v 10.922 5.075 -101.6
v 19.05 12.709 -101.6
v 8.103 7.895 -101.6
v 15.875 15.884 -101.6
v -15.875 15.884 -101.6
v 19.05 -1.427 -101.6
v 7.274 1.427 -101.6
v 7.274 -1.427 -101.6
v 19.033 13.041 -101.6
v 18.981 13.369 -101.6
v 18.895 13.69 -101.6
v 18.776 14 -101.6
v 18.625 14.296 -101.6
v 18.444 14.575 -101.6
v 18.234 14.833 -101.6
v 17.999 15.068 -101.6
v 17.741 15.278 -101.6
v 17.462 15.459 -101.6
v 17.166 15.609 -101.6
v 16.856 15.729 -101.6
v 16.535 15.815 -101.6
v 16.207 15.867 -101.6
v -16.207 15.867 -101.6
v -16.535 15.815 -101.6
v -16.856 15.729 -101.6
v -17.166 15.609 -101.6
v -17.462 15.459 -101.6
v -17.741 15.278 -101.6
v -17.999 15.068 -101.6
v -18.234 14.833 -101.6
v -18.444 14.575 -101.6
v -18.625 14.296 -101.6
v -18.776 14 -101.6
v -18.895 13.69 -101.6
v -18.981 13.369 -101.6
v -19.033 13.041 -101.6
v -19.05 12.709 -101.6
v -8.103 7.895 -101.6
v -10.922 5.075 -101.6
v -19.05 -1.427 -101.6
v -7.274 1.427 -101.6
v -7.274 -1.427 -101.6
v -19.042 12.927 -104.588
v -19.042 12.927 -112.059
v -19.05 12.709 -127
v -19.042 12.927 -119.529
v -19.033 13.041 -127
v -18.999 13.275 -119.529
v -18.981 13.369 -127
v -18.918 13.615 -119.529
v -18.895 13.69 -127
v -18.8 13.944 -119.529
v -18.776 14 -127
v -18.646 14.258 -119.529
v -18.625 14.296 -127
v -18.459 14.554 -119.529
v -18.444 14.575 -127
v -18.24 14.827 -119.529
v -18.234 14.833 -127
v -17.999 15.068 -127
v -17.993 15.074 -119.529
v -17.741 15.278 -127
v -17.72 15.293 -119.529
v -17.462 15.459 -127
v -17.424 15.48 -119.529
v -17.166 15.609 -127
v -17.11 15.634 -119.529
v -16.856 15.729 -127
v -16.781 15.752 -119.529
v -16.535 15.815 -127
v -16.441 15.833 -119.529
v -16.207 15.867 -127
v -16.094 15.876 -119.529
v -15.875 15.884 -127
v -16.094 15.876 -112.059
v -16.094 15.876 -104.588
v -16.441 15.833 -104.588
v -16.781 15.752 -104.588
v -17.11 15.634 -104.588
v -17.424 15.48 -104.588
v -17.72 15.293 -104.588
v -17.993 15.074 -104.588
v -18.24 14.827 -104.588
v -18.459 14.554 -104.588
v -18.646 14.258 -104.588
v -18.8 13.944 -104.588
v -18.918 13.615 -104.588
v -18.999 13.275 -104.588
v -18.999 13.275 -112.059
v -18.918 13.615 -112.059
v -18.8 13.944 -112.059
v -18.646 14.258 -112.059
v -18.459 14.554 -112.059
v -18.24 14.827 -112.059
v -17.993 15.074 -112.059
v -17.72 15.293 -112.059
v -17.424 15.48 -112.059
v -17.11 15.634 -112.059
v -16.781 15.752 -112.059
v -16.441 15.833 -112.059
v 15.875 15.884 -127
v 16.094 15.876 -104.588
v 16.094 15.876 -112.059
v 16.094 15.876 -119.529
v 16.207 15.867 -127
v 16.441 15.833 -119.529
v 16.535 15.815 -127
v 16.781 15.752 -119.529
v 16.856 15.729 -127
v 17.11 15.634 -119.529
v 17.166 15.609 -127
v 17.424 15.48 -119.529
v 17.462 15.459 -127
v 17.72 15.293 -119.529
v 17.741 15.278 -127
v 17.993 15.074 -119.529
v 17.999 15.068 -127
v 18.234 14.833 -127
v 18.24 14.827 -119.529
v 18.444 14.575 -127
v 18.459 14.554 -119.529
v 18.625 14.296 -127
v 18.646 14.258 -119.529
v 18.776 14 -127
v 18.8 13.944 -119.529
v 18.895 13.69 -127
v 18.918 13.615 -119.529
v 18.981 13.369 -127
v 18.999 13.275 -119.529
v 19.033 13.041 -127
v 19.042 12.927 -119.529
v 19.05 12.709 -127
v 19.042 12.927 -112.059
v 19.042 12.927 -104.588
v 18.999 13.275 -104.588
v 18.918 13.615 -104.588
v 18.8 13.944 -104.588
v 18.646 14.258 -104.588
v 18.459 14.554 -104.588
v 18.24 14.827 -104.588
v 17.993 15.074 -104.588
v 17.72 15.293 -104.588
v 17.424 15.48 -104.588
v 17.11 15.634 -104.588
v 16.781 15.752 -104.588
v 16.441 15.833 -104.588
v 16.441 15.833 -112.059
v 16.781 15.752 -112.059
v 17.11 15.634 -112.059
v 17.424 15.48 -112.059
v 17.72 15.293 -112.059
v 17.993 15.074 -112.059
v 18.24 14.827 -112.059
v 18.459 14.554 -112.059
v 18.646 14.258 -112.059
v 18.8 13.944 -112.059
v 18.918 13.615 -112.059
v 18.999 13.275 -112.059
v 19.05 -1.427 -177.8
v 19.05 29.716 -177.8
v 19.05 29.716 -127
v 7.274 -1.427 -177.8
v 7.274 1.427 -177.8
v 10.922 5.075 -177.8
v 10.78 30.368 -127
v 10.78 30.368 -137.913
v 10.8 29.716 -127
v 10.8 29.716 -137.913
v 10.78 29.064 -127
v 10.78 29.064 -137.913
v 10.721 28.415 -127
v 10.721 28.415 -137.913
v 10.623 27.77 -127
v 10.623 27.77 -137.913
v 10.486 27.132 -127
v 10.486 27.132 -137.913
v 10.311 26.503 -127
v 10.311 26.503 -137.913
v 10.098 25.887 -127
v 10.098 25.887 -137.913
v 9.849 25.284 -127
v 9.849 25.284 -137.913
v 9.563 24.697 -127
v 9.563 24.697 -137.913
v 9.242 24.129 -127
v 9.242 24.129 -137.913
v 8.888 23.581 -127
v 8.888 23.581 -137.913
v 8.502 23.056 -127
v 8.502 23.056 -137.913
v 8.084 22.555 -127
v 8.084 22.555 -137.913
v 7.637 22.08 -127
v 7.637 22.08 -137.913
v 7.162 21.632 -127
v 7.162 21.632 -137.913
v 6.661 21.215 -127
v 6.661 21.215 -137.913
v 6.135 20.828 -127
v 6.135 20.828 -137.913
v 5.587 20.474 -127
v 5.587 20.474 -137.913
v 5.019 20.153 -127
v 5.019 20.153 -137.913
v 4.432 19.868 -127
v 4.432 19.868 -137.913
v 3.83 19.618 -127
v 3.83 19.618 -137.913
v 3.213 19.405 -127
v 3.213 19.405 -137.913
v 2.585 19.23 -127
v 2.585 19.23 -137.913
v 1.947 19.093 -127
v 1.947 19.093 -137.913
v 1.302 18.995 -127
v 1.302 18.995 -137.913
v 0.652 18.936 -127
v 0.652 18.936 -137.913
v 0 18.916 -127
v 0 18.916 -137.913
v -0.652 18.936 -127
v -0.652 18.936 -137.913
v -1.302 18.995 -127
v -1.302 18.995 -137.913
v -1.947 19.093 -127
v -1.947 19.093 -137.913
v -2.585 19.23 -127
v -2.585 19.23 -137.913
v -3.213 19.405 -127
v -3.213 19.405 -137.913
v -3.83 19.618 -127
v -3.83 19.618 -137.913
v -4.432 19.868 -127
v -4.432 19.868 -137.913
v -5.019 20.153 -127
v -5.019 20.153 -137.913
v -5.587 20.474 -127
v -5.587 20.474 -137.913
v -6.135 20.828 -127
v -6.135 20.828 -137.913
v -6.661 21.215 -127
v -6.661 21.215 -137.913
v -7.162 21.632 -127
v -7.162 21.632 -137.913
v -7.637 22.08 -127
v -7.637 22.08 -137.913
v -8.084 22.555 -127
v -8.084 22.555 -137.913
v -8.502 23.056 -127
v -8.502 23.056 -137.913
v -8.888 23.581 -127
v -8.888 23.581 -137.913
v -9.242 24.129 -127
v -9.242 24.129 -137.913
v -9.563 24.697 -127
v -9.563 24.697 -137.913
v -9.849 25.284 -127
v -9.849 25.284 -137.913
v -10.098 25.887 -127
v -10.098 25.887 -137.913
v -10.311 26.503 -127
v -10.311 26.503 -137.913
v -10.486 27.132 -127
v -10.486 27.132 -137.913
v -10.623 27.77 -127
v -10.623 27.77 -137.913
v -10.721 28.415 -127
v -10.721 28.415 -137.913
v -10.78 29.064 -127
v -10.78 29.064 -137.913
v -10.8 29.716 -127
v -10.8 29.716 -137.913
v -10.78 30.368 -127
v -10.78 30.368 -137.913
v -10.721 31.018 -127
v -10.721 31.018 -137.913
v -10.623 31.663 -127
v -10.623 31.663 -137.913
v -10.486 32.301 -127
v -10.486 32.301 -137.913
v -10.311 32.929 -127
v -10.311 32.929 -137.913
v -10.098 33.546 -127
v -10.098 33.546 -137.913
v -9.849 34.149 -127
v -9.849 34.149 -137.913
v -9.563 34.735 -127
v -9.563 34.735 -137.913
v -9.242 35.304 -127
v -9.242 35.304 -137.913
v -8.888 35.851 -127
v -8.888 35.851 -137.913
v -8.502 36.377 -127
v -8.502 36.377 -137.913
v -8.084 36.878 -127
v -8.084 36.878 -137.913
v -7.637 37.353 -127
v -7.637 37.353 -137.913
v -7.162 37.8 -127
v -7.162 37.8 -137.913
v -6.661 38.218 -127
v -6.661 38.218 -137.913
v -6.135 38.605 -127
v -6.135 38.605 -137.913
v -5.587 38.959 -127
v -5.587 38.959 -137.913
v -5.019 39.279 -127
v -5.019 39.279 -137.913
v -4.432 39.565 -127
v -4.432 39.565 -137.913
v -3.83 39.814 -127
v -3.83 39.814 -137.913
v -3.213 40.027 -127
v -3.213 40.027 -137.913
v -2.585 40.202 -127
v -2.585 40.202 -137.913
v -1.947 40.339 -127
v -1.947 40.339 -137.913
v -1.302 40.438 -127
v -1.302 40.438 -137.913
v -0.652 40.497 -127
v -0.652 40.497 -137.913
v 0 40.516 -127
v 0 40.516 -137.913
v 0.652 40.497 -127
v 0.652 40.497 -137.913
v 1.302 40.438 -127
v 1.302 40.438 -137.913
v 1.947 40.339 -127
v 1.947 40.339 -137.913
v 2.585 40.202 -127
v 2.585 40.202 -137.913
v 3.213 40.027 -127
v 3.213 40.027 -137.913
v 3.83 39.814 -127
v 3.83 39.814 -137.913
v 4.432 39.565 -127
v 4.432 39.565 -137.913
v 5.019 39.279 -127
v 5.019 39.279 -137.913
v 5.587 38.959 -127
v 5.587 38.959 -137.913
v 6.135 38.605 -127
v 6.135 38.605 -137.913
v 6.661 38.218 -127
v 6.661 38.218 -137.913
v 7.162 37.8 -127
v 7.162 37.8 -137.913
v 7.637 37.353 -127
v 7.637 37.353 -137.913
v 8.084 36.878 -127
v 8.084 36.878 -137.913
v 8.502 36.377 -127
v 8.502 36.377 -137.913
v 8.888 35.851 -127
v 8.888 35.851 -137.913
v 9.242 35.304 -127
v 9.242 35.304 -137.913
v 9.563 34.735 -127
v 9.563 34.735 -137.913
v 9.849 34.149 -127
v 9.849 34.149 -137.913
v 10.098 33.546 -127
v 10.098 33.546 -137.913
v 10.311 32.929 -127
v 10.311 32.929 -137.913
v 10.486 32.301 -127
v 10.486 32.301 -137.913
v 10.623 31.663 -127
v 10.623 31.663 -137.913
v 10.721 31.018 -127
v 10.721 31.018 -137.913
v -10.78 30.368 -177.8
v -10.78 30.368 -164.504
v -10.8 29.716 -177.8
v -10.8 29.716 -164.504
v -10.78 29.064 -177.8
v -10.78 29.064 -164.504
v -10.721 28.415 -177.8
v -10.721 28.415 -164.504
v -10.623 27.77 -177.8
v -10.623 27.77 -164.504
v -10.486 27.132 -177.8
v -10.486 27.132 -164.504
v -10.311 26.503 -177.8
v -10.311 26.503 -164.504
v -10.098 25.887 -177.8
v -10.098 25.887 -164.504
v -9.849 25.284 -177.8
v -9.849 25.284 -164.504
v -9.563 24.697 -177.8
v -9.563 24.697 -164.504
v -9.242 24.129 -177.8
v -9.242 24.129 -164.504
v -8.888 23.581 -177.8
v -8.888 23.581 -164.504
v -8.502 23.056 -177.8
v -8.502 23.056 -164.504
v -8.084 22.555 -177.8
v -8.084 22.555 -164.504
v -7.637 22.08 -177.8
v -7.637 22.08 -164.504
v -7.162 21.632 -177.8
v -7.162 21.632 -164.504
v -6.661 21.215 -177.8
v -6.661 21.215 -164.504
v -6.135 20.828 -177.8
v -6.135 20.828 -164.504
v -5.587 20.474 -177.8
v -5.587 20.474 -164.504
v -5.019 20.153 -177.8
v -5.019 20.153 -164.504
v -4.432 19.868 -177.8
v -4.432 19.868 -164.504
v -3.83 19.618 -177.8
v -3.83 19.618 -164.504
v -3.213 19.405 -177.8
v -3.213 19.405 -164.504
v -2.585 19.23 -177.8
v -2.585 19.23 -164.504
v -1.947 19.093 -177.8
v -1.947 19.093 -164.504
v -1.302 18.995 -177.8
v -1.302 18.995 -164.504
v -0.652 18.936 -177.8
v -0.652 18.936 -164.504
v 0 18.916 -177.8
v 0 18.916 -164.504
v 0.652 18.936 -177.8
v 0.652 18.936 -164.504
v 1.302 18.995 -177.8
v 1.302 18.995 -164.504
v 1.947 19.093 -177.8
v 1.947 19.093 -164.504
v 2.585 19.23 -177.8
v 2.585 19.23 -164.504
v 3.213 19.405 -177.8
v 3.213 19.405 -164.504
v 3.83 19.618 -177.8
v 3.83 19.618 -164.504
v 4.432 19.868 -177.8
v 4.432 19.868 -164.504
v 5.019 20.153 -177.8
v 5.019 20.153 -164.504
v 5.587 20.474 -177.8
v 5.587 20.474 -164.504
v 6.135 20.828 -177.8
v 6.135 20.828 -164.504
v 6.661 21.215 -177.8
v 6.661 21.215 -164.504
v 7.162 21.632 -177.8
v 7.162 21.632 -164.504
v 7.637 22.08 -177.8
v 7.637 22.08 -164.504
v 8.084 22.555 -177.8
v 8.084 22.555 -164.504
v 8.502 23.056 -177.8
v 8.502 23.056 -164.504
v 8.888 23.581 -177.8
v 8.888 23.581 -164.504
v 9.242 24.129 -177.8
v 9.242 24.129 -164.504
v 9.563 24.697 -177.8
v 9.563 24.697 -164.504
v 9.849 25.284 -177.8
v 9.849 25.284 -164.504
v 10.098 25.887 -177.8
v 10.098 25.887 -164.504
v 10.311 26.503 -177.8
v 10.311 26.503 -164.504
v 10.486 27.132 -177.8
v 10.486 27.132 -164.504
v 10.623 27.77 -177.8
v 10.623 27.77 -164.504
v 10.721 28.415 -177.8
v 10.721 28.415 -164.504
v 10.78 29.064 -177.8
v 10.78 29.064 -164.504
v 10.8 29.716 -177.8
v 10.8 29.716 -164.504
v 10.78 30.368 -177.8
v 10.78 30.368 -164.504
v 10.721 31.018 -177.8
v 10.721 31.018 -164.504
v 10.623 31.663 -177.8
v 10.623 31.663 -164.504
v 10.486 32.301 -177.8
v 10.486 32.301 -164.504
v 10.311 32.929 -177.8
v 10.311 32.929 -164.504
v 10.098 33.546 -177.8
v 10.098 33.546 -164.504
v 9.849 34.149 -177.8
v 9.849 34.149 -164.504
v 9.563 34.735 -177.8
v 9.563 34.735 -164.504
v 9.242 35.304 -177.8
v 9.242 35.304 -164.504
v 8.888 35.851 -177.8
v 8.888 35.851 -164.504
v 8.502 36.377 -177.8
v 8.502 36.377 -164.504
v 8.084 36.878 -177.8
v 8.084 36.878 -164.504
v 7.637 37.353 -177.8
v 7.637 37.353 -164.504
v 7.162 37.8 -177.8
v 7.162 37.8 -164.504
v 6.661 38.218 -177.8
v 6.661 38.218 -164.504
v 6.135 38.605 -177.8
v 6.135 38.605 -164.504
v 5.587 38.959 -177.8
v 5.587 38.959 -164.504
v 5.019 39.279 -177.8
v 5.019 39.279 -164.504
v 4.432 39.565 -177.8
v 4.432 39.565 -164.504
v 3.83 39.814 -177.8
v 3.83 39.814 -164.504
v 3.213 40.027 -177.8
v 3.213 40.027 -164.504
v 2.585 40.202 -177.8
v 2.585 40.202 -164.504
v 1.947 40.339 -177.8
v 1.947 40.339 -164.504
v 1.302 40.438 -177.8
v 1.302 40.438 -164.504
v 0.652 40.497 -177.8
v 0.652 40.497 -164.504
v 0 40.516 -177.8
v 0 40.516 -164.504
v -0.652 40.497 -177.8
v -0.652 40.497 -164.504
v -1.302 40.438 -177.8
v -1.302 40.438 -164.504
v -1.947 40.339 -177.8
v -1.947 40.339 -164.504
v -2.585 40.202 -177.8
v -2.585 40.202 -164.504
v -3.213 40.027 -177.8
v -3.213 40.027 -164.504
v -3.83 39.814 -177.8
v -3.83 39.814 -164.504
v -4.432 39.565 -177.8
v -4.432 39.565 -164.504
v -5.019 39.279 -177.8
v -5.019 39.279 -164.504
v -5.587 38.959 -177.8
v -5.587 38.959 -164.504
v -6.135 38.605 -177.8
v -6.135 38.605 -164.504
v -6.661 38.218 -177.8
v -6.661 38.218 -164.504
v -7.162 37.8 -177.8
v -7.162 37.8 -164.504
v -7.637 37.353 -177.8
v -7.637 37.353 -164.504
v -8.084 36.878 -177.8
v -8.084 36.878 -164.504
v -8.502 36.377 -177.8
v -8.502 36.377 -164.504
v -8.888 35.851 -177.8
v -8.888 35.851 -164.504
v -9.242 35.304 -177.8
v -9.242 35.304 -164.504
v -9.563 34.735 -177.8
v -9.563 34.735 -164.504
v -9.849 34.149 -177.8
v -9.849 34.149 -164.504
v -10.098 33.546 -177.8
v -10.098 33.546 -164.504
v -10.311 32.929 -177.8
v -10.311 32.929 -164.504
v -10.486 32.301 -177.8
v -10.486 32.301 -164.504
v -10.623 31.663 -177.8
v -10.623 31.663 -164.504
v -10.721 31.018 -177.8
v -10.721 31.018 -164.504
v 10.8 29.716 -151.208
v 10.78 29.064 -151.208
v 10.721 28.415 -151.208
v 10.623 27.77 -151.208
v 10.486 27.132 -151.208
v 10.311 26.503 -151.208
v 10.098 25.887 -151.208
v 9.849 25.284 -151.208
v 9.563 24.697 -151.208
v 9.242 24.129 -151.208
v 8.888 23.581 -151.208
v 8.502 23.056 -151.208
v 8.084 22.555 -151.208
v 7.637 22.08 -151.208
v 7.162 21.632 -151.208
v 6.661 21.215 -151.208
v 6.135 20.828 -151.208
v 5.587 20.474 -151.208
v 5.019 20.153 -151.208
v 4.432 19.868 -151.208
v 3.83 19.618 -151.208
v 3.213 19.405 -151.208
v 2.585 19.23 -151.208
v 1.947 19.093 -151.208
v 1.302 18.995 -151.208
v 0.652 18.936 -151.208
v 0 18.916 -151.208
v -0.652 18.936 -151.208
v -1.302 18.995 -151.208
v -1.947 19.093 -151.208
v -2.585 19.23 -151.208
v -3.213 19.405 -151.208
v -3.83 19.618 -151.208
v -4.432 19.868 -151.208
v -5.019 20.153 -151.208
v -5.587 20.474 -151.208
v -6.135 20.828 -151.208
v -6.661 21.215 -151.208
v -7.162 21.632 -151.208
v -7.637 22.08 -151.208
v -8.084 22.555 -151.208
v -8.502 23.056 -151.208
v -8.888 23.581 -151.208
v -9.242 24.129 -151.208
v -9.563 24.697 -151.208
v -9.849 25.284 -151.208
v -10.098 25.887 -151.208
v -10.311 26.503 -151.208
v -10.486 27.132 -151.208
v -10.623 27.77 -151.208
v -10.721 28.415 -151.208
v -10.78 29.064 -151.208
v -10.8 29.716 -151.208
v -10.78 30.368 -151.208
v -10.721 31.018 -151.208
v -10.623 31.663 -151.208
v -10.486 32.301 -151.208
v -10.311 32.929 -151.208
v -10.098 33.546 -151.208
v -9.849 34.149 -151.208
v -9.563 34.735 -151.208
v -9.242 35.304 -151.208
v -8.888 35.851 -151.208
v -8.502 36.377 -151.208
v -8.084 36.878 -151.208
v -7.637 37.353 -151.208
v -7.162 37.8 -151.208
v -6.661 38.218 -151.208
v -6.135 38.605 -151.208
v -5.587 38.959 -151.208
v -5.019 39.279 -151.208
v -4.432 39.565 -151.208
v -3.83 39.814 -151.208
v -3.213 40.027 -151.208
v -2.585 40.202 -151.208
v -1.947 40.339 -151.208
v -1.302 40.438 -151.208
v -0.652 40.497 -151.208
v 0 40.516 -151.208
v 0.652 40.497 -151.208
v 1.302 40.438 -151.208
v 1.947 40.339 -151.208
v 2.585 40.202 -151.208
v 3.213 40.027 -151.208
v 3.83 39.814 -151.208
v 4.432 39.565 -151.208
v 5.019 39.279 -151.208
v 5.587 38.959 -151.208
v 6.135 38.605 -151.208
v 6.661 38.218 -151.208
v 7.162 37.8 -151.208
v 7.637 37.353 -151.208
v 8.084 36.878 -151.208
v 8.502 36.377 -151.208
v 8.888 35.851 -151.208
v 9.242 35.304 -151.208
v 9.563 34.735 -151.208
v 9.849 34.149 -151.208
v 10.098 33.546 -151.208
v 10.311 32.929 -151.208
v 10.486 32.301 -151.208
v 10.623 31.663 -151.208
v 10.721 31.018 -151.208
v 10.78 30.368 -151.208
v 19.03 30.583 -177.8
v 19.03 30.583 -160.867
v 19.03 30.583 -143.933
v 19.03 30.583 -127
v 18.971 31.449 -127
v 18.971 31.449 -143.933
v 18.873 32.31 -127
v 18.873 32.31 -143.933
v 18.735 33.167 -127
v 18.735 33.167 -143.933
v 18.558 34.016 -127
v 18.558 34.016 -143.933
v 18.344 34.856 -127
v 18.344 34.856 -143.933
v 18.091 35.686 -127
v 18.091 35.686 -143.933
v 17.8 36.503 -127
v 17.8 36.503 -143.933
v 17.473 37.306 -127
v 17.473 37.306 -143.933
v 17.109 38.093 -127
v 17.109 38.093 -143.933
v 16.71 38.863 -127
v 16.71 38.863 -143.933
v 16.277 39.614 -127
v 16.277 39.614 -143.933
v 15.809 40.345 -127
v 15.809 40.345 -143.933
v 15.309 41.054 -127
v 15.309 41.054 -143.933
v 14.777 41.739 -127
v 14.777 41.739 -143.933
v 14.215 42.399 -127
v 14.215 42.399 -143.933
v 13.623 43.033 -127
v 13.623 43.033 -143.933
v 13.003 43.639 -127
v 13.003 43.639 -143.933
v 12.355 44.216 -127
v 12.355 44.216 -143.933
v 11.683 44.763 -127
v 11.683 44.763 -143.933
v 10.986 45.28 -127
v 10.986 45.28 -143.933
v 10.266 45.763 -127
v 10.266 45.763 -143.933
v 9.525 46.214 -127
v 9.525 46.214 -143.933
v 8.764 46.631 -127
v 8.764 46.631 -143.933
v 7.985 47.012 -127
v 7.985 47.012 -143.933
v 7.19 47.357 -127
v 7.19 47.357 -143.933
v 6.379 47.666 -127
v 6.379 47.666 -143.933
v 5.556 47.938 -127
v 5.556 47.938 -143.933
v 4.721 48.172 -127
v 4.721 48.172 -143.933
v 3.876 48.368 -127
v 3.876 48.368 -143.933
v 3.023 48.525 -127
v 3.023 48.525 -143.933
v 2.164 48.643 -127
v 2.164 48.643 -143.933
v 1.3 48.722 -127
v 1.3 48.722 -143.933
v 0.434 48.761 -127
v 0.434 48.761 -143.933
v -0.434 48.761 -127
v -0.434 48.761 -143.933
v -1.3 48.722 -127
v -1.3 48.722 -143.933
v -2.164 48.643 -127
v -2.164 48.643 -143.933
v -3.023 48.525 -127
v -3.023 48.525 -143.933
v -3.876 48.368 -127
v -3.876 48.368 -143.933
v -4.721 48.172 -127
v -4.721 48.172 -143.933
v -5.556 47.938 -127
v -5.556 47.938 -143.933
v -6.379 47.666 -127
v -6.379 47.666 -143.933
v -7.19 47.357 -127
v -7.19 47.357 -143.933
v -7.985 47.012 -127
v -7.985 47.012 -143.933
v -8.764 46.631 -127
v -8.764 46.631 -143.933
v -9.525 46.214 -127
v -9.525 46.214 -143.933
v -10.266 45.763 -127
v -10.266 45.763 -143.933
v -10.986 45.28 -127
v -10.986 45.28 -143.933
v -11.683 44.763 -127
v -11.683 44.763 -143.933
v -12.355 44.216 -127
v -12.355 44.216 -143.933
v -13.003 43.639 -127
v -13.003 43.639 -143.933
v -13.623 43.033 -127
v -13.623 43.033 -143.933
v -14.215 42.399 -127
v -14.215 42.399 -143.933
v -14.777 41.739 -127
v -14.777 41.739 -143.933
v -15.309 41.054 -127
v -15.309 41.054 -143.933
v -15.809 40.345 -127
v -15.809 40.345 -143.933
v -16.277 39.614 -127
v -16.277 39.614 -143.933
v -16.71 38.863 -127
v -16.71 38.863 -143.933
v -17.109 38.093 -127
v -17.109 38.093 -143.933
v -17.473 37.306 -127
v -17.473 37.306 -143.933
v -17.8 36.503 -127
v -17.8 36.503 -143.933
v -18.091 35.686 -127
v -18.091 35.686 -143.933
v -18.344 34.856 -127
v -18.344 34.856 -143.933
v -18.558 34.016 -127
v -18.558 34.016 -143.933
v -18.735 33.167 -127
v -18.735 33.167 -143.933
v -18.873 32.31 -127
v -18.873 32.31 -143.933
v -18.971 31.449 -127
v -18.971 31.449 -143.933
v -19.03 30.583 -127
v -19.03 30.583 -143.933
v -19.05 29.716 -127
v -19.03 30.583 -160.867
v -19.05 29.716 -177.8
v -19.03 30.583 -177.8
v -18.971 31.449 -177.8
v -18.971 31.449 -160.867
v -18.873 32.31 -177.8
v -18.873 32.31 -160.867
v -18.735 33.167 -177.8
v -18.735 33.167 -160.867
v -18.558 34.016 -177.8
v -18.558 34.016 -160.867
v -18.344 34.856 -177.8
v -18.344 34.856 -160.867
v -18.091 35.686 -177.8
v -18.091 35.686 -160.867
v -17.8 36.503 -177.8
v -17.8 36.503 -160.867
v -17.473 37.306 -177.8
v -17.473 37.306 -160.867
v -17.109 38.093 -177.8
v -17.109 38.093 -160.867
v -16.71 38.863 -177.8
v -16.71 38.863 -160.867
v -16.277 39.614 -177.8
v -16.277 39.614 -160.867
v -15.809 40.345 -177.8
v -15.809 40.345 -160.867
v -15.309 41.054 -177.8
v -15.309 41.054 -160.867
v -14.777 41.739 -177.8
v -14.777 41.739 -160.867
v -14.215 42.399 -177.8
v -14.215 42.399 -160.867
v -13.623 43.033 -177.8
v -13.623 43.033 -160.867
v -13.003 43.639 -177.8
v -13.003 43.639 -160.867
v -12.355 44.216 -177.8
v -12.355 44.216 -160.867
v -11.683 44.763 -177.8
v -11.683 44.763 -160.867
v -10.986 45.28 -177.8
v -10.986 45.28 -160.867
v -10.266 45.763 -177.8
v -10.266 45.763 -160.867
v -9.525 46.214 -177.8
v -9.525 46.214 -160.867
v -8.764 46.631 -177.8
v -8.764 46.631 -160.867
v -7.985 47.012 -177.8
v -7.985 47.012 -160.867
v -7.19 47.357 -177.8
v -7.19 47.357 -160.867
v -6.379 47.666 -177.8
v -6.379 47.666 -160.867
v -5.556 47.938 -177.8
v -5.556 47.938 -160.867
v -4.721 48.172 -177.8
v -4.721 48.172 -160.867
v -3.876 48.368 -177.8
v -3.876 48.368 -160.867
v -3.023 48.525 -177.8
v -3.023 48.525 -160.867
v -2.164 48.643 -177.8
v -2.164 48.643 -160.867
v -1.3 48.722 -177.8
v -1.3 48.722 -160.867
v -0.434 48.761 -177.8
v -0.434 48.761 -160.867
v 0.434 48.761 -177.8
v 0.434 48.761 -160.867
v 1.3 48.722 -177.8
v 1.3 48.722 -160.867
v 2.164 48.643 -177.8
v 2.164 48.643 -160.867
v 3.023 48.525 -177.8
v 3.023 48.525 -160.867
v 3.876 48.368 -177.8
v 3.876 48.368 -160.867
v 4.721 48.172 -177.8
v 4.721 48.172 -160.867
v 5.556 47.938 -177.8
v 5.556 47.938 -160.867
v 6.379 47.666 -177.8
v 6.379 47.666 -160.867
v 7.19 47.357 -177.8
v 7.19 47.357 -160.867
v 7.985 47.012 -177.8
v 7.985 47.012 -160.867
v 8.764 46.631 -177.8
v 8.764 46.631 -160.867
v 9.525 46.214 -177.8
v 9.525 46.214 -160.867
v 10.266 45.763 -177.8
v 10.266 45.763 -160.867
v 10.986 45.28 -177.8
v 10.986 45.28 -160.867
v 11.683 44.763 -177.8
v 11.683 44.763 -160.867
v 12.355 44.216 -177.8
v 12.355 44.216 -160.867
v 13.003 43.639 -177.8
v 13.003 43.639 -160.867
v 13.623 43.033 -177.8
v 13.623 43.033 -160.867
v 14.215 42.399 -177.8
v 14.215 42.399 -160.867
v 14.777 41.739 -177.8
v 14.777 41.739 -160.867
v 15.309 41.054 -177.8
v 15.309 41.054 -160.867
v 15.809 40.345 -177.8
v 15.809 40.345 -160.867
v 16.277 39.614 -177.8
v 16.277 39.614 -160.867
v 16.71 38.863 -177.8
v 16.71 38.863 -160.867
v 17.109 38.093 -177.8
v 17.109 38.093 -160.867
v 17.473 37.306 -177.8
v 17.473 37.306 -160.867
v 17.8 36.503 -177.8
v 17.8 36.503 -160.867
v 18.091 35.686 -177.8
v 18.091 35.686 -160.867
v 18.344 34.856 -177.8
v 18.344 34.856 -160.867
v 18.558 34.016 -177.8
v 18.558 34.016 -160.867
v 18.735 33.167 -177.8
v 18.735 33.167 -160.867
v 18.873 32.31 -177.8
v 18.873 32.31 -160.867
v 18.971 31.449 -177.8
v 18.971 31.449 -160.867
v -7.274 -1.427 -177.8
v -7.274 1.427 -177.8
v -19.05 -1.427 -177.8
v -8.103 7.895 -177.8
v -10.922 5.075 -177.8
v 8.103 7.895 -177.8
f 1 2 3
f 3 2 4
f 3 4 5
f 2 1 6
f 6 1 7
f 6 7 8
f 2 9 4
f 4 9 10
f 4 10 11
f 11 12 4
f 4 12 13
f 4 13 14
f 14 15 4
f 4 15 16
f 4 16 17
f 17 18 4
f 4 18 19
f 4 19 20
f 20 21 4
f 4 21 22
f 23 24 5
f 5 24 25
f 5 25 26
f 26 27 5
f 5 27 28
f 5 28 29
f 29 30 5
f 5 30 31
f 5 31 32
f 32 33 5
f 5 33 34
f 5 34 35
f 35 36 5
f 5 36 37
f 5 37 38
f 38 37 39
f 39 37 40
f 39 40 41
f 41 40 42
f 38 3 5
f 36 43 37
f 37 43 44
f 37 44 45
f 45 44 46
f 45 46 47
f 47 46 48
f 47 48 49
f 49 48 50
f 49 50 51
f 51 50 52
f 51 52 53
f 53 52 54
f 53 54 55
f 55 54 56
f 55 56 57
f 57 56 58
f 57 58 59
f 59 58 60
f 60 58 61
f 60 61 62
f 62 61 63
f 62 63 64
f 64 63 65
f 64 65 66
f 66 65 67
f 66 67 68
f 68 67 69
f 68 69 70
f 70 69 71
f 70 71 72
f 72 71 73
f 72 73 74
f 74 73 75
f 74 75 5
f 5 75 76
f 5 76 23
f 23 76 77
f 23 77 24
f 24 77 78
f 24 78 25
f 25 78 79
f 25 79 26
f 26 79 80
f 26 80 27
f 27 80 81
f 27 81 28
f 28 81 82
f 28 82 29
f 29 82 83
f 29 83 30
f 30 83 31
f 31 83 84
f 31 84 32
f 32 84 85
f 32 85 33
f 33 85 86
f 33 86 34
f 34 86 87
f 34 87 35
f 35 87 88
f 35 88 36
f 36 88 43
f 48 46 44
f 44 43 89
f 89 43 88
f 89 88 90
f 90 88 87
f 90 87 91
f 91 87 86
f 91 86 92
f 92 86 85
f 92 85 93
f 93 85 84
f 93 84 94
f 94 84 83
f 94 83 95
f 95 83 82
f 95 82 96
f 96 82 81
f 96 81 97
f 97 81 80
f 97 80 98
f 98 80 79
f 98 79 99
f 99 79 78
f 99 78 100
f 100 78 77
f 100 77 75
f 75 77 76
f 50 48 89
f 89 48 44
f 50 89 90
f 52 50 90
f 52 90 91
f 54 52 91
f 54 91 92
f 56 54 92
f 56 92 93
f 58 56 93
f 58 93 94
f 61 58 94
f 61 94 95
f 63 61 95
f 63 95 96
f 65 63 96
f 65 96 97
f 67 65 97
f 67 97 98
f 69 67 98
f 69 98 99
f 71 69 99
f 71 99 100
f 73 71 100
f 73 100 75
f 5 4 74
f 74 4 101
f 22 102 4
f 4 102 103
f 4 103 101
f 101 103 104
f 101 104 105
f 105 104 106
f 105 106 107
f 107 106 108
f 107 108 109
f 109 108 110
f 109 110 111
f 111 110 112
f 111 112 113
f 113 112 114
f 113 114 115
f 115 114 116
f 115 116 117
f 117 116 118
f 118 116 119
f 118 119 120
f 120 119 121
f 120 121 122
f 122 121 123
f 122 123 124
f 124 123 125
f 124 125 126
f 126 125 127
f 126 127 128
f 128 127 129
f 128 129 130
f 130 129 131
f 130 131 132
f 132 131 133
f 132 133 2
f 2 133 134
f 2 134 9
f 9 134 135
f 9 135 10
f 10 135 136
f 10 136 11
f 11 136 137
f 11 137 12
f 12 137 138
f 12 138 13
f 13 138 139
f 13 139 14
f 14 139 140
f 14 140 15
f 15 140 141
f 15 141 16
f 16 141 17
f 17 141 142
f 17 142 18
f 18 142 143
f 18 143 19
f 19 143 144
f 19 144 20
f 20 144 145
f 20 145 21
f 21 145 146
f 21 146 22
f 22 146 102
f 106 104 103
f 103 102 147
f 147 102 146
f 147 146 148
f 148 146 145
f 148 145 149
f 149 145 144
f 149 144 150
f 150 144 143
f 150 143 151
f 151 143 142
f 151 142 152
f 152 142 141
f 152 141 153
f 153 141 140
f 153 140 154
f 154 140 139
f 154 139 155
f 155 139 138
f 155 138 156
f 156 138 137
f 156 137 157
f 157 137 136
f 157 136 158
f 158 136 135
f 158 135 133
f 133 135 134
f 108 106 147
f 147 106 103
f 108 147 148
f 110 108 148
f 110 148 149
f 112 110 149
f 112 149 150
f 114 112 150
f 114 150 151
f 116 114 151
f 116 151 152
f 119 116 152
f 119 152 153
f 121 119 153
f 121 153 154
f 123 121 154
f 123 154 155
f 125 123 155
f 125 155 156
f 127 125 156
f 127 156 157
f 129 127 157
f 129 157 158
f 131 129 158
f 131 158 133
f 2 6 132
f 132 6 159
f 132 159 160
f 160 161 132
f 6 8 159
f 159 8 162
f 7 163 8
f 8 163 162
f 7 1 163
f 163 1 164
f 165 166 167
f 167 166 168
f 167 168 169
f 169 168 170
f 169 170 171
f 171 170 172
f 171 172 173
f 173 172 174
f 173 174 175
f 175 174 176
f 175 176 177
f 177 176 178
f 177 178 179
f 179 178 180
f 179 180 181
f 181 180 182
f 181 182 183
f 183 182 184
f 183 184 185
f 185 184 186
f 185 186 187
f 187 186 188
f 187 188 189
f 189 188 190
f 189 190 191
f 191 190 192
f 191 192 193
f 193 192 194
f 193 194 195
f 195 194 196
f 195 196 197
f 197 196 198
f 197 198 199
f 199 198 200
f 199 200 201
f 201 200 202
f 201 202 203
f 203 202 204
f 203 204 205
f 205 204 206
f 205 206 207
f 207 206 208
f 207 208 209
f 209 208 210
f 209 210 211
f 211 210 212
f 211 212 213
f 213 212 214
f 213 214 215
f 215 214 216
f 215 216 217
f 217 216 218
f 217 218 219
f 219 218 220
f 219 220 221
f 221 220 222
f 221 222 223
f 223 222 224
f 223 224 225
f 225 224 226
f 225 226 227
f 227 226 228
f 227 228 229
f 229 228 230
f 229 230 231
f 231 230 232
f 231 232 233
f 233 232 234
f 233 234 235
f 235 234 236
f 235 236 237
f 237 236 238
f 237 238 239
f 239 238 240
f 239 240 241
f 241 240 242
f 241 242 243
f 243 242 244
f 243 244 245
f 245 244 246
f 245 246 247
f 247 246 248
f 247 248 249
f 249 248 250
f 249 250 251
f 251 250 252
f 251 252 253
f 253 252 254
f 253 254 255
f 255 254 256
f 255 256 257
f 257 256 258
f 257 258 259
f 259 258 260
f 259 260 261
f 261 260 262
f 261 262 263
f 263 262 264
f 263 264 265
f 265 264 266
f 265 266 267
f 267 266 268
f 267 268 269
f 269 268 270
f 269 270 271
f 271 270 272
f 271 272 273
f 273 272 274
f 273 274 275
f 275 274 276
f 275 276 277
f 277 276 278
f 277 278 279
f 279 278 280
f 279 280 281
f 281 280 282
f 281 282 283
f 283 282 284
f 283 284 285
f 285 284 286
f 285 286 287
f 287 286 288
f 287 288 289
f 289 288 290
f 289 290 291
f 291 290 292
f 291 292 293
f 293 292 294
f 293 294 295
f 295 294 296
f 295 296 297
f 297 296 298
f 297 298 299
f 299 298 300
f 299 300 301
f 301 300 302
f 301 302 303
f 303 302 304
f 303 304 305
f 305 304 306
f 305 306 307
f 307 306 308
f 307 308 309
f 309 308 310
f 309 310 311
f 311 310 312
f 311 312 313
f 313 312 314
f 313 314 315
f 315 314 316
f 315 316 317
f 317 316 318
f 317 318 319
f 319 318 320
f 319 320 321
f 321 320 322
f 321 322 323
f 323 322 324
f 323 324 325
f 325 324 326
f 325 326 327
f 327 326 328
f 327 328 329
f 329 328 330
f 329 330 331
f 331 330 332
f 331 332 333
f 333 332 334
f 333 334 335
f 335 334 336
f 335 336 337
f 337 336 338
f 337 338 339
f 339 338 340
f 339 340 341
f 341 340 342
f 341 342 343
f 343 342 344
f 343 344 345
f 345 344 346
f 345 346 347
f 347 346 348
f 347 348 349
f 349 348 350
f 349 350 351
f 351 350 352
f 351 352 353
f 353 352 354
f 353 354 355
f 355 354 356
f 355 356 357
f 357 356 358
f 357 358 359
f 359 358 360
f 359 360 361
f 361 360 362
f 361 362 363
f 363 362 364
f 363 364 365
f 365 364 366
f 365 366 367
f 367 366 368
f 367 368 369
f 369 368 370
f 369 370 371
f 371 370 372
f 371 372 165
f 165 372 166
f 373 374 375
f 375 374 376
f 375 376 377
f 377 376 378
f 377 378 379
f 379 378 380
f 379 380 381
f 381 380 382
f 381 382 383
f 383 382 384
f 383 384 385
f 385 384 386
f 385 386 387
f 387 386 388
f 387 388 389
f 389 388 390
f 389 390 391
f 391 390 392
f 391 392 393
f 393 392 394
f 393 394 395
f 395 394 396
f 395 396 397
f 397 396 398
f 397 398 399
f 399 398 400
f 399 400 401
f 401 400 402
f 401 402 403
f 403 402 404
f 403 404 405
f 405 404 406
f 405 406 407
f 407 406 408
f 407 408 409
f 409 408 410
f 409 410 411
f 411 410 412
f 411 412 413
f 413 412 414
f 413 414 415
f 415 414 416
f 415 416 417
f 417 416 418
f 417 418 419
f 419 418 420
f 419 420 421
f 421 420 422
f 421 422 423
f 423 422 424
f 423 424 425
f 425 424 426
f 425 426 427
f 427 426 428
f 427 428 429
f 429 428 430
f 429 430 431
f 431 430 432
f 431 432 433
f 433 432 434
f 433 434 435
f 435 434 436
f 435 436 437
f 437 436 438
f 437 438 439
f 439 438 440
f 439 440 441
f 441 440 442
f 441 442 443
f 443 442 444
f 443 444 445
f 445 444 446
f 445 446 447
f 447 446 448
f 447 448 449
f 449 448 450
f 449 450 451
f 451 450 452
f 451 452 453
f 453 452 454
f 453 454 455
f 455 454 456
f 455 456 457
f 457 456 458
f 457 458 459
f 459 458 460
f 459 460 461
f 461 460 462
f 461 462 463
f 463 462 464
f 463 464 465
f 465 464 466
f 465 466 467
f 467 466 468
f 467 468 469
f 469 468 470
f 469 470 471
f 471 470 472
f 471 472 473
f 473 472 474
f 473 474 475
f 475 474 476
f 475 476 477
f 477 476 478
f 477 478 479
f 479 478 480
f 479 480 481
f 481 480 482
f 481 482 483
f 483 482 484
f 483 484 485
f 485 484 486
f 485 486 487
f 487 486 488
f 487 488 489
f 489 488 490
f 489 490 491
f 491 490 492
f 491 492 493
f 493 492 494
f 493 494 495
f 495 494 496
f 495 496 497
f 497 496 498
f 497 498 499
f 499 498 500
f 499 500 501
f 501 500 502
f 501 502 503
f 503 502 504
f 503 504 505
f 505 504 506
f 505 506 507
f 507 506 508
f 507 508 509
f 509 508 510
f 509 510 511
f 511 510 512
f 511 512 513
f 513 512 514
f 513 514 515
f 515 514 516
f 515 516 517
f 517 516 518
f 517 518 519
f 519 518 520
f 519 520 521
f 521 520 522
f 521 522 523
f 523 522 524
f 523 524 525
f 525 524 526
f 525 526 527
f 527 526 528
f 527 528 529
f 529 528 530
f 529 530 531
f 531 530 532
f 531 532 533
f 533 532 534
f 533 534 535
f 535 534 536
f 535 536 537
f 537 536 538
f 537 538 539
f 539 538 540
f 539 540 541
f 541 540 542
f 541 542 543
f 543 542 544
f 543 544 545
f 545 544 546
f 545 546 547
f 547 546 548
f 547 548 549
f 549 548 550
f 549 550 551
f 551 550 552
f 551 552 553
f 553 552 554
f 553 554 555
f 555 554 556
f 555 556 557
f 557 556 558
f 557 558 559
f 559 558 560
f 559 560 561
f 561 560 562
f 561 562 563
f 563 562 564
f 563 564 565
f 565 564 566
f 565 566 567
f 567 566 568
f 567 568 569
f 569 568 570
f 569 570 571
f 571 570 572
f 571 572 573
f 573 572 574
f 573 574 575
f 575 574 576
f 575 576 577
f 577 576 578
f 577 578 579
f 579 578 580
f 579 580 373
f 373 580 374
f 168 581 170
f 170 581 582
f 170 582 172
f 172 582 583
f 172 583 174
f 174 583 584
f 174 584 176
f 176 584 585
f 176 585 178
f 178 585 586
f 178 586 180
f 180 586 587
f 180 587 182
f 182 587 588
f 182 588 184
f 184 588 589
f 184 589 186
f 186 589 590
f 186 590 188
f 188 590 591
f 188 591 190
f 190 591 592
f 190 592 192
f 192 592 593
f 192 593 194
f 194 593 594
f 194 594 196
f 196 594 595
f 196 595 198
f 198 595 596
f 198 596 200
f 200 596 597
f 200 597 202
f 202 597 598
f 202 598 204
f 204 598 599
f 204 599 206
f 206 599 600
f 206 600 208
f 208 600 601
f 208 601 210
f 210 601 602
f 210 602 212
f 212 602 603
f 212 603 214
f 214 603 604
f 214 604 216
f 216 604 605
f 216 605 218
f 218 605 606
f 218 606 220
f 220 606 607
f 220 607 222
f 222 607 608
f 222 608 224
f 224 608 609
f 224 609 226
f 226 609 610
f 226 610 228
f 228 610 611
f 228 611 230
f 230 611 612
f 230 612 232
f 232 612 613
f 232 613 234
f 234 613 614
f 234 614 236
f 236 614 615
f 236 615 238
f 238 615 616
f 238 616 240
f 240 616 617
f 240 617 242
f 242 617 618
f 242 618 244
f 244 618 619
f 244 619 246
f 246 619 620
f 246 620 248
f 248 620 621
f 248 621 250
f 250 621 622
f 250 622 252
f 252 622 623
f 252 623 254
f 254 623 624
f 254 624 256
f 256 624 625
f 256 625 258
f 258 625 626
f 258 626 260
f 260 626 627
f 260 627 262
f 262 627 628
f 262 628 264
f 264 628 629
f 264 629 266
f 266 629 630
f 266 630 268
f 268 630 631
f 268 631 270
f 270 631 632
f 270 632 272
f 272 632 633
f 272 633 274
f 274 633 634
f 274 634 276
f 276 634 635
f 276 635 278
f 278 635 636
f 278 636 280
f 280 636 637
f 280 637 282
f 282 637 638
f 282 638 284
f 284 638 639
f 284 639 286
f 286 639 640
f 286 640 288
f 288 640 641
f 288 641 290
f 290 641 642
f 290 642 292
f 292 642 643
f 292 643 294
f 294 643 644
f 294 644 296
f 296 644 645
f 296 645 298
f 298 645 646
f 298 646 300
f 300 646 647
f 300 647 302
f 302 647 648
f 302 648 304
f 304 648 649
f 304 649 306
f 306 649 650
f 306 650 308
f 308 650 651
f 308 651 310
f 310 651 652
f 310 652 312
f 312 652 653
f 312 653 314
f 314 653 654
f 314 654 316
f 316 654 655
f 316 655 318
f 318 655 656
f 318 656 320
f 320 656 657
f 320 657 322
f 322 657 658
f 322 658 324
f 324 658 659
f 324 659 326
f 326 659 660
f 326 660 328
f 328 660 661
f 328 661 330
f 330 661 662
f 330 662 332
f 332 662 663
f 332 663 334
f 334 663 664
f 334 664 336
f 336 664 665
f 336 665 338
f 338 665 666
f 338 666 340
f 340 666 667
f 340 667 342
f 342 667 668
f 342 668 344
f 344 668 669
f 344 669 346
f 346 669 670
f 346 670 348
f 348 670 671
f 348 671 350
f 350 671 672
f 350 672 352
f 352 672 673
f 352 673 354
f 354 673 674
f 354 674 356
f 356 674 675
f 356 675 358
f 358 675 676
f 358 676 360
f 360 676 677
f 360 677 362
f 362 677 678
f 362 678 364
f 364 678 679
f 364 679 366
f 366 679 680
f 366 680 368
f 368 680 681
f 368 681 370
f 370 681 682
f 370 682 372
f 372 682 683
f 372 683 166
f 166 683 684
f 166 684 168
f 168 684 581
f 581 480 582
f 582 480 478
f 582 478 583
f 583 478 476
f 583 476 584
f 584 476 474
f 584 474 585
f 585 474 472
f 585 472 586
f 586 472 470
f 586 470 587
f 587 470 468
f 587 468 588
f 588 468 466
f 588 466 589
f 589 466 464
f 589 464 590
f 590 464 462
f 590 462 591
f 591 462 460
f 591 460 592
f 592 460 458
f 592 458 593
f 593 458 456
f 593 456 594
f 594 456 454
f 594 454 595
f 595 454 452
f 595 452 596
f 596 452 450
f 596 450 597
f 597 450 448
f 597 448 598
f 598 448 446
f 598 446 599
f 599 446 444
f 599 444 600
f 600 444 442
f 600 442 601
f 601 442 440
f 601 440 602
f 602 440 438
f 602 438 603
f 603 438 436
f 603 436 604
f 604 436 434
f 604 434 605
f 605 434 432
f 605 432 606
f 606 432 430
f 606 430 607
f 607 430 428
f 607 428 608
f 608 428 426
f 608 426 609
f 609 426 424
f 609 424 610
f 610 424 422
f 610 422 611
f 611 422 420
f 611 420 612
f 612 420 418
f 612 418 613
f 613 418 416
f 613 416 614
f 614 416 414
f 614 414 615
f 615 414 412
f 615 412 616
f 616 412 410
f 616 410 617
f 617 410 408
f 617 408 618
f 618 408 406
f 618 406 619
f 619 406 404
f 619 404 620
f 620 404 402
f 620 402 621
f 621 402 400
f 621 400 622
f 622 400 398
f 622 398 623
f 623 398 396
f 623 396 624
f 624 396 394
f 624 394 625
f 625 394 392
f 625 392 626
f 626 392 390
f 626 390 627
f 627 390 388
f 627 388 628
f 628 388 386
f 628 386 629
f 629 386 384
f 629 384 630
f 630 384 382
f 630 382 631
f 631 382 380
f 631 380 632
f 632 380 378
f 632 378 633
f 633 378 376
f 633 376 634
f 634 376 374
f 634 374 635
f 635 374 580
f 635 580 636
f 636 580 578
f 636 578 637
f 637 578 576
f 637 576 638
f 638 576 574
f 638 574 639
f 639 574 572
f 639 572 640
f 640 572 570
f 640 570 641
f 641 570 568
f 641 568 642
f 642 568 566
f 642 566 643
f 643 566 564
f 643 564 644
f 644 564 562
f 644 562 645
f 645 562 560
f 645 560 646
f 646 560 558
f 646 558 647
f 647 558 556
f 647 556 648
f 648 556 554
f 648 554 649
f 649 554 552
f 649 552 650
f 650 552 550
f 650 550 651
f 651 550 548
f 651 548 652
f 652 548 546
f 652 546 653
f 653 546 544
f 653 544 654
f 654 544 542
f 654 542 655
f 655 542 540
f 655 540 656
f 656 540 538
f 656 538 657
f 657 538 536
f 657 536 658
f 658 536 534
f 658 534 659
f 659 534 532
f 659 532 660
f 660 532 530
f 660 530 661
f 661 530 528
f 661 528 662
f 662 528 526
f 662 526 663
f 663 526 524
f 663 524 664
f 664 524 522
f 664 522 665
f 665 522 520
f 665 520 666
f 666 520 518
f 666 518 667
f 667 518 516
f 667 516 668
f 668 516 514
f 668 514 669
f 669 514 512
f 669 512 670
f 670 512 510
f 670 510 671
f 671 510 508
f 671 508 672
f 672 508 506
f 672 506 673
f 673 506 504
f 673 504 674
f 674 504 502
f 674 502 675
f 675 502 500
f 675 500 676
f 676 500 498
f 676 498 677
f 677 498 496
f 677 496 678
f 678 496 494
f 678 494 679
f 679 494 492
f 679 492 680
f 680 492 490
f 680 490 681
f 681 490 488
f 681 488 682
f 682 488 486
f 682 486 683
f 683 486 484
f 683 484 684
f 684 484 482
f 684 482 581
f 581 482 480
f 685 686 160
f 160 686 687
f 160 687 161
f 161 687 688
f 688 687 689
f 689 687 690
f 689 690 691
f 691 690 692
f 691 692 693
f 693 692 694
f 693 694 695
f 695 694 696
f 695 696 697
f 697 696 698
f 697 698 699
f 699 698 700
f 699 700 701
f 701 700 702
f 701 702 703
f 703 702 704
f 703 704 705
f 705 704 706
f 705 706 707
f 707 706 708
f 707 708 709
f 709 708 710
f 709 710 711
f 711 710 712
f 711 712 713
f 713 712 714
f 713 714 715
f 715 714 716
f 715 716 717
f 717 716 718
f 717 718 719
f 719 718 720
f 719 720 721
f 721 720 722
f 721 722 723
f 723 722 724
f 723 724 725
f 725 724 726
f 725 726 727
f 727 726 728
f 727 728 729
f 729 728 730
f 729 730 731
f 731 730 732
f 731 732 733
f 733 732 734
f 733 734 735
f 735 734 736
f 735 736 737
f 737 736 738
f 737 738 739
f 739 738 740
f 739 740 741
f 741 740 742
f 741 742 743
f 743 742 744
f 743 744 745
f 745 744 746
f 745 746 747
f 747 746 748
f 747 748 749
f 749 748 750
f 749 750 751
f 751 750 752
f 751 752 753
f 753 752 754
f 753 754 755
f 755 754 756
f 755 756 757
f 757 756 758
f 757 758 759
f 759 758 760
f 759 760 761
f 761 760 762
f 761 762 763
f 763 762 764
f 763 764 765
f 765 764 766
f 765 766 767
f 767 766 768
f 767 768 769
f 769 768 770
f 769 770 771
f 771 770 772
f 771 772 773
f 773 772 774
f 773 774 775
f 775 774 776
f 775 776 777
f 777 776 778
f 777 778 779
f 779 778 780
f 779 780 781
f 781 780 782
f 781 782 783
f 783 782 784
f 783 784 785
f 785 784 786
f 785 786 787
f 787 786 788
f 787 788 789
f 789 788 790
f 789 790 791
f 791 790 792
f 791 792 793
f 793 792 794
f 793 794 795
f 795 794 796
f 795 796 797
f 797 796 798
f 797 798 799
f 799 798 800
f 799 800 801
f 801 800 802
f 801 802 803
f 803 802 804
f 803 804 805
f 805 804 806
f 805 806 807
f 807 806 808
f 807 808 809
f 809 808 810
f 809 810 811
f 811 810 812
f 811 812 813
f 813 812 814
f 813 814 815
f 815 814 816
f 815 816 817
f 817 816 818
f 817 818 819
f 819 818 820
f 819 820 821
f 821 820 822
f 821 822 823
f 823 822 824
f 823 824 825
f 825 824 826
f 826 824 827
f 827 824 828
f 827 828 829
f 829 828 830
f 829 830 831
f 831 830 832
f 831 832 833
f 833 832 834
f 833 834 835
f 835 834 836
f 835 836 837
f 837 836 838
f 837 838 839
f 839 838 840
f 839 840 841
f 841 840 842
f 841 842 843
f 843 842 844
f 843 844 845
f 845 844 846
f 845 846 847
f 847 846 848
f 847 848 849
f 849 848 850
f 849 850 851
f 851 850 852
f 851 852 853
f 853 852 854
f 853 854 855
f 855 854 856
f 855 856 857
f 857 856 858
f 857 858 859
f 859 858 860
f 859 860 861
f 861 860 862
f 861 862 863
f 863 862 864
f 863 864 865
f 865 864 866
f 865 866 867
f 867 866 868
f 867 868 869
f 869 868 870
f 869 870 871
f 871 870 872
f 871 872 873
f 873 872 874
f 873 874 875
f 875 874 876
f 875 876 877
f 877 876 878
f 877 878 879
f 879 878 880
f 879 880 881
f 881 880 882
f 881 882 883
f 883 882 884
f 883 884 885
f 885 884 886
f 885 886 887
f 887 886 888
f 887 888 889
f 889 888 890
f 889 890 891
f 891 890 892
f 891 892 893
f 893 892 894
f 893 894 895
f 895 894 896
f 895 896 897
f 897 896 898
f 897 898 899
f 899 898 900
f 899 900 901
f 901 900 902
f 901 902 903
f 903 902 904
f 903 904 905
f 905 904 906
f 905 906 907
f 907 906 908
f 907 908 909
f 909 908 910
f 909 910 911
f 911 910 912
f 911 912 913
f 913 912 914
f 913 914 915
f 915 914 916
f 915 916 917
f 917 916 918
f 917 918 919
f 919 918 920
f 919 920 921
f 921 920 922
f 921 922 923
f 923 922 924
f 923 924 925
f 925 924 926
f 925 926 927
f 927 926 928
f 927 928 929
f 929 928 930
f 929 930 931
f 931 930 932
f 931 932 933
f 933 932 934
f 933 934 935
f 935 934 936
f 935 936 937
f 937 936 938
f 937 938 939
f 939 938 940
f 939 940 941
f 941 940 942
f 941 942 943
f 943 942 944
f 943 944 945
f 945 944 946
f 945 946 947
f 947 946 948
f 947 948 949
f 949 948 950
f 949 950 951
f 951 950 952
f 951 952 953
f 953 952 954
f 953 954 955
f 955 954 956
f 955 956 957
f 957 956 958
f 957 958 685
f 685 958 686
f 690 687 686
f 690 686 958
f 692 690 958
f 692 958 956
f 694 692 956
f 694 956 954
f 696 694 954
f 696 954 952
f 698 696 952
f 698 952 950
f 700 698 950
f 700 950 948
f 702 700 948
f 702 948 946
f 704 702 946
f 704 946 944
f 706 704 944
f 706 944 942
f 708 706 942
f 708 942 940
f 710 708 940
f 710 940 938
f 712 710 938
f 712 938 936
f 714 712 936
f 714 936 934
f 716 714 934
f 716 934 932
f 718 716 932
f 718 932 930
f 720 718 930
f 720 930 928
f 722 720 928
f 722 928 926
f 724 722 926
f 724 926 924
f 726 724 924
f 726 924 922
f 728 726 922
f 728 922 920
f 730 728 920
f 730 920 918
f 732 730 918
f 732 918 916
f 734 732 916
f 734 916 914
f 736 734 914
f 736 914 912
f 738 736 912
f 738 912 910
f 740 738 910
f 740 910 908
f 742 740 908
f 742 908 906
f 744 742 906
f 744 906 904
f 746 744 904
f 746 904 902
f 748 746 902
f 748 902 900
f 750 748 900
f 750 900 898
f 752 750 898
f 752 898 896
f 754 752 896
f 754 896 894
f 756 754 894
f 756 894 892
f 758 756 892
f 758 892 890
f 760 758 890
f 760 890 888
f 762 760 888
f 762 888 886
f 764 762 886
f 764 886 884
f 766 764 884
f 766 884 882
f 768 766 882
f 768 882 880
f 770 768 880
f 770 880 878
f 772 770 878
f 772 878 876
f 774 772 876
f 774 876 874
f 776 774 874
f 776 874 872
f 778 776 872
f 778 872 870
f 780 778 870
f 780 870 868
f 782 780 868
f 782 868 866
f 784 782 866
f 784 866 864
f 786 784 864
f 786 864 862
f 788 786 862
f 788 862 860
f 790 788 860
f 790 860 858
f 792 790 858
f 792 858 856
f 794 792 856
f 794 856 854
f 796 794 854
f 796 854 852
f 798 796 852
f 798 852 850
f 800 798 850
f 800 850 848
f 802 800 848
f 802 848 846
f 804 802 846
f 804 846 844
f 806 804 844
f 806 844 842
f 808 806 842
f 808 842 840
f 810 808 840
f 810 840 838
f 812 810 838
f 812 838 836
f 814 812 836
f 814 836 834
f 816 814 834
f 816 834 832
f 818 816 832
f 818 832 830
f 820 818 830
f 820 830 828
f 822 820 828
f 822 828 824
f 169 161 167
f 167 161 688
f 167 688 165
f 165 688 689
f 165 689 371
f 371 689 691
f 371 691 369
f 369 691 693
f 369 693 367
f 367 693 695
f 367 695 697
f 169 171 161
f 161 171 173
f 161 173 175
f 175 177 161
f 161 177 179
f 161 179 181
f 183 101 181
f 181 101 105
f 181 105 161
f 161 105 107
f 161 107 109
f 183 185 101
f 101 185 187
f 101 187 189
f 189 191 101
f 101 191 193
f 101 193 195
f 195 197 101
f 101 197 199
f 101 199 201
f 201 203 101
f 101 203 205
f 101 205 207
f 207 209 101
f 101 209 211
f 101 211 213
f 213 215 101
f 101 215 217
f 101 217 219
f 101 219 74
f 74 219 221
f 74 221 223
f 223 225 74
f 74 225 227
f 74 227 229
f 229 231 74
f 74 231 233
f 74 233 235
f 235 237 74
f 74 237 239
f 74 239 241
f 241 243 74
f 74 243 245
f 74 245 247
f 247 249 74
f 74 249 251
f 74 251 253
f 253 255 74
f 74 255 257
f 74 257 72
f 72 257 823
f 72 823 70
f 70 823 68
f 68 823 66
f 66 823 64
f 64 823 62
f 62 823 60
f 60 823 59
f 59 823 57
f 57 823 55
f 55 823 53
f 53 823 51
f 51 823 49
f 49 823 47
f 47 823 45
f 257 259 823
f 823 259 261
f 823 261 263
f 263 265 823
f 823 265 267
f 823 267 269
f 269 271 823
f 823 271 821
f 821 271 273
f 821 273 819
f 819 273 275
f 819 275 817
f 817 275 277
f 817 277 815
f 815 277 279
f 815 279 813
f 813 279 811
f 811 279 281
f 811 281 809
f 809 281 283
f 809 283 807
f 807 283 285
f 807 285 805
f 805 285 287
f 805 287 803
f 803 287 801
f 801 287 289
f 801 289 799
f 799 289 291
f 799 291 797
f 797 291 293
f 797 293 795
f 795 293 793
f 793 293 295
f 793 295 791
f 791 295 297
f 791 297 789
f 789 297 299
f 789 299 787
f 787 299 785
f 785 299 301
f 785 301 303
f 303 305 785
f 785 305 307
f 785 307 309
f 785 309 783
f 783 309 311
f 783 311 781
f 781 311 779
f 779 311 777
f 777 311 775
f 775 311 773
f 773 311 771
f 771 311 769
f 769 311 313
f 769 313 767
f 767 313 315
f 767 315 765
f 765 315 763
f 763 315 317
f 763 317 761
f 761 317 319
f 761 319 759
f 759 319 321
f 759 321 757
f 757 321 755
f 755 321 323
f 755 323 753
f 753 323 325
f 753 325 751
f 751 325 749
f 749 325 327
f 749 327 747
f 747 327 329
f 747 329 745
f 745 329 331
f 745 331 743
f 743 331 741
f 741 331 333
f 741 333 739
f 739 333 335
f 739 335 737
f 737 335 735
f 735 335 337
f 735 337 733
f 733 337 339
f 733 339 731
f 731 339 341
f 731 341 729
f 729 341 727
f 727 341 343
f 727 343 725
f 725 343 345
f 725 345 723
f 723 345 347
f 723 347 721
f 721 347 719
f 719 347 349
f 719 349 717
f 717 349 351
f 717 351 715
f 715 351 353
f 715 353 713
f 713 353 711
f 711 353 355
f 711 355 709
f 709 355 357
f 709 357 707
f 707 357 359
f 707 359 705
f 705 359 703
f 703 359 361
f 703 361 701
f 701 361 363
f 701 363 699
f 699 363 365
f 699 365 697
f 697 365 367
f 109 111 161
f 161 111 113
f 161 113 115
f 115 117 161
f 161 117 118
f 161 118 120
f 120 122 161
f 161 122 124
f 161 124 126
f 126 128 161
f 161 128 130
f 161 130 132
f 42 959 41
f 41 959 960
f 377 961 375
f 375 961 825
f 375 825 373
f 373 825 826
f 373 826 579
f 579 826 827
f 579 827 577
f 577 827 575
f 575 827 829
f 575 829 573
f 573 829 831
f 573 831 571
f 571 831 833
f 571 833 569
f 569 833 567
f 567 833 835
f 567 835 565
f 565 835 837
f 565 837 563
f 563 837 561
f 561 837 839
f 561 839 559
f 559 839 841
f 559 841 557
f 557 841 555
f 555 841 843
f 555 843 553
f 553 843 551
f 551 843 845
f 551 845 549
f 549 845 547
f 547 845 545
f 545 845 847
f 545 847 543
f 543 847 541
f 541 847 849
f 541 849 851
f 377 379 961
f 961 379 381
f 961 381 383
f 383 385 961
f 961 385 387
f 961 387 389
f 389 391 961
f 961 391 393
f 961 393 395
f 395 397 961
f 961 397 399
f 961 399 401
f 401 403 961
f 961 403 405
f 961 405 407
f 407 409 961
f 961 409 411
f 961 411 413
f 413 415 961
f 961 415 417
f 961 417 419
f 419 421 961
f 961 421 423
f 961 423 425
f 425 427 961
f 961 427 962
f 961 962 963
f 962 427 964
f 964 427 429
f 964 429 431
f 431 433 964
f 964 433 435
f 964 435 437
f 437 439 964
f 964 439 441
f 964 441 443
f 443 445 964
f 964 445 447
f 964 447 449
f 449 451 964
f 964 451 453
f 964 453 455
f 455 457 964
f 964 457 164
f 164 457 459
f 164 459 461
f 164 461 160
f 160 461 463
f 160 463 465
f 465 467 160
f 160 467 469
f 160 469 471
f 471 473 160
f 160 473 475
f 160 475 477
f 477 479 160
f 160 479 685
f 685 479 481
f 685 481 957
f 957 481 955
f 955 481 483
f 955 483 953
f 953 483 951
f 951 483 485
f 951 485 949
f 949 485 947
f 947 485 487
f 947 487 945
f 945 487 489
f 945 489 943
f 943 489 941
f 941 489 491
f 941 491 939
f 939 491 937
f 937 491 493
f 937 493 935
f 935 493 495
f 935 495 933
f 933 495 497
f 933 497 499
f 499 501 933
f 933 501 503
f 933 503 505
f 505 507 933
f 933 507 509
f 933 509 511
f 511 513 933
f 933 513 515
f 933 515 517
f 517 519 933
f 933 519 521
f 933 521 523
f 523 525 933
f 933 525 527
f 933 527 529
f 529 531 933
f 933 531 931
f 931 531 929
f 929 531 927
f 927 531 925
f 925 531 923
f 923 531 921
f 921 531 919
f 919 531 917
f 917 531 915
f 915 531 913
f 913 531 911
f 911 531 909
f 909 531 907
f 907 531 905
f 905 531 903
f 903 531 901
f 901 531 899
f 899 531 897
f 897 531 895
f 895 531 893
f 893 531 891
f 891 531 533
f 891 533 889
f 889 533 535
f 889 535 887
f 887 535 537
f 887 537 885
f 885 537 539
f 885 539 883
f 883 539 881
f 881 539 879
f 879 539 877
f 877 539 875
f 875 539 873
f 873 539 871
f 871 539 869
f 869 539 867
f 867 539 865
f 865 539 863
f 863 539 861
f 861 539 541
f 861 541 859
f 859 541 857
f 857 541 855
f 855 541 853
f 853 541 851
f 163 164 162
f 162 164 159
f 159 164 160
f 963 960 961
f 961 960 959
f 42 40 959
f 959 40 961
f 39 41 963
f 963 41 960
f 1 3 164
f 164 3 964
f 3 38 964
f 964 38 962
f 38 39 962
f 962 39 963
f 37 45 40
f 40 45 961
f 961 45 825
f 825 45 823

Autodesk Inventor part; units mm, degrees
ref_plane "YZ Plane" through (0, 0, 0) normal (1, 0, 0) x (0, 1, 0)
ref_plane "XZ Plane" through (0, 0, 0) normal (0, 1, 0) x (-1, 0, 0)
ref_plane "XY Plane" through (0, 0, 0) normal (0, 0, 1) x (1, 0, 0)
sketch "Sketch1" plane through (0, 0, 0) normal (0, 0, 1) x (1, 0, 0)
  line L0 (-7.2739, -1.4271) -> (7.2739, -1.4271)
  line L1 (7.2739, -1.4271) -> (7.2739, 1.4271)
  line L2 (7.2739, 1.4271) -> (-7.2739, 1.4271)
  line L3 (-7.2739, 1.4271) -> (-7.2739, -1.4271)
  line L4 (-7.2739, -1.4271) -> (7.2739, 1.4271) construction
  line L5 (7.2739, -1.4271) -> (-7.2739, 1.4271) construction
  line L6 (9.525, 3.6783) -> (-9.525, 3.6783)
  line L7 (-9.525, 3.6783) -> (-9.525, 6.4723)
  line L8 (-9.525, 6.4723) -> (9.525, 6.4723)
  line L9 (9.525, 6.4723) -> (9.525, 3.6783)
  line L10 (9.525, 3.6783) -> (-9.525, 6.4723) construction
  line L11 (-9.525, 3.6783) -> (9.525, 6.4723) construction
  line L12 (-7.2739, 1.4271) -> (-9.525, 3.6783)
  line L13 (7.2739, 1.4271) -> (9.525, 3.6783)
  line L14 (-10.922, 5.0753) -> (-8.1026, 7.8947)
  line L15 (-10.922, 5.0753) -> (-6.9348, 5.0753) construction
  line L16 (-10.922, 5.0753) -> (-9.525, 3.6783)
  line L17 (10.922, 5.0753) -> (8.1026, 7.8947)
  line L18 (9.525, 3.6783) -> (10.922, 5.0753)
  line L19 (-8.1026, 7.8947) -> (8.1026, 7.8947)
  line L20 (-19.05, -1.4271) -> (19.05, -1.4271)
  line L21 (19.05, -1.4271) -> (19.05, 15.8839)
  line L22 (19.05, 15.8839) -> (-19.05, 15.8839)
  line L23 (-19.05, 15.8839) -> (-19.05, -1.4271)
  point P0 (0, 0)
  point P1 (0, 5.0753)
  point P2 (0, -1.4271)
  dimension "d0" = 135
  dimension "d1" = 135
  dimension "d2" = 19.05
  dimension "d3" = 2.794
  dimension "d4" = 45
  dimension "d5" = 4.2164
  dimension "d6" = 90
  dimension "d7" = 90
  dimension "d8" = 9.3218
  dimension "d9" = 38.1
extrude "Extrusion1" add sketch "Sketch1" against normal blind 177.8 contours L20 L23 L22 L21 L1 L13 L18 L17 L19 L14 L16 L12 L3
sketch "Sketch2" plane through (0, 0, -177.8) normal (0, 0, -1) x (-1, 0, 0)
  arc A0 (19.05, 29.7163) -> (-19.05, 29.7163) centre (0, 29.7163) ccw
  line L0 (19.05, -1.4271) -> (19.05, 15.8839) projected
  line L1 (19.05, 15.8839) -> (19.05, -1.4271) projected
  line L2 (19.05, 15.8839) -> (19.05, 29.7163)
  line L3 (-19.05, -1.4271) -> (-19.05, 15.8839) projected
  line L4 (-19.05, 15.8839) -> (-19.05, 29.7163)
  line L5 (19.05, 15.8839) -> (-19.05, 15.8839)
  point P0 (0, 0)
extrude "Extrusion2" add sketch "Sketch2" against normal blind 50.8
sketch "Sketch3" plane through (0, 0, -177.8) normal (0, 0, -1) x (-1, 0, 0)
  arc A0 (19.05, 29.7163) -> (-19.05, 29.7163) centre (0, 29.7163) ccw projected
  point P0 (0, 0)
hole "Hole1" at (0, 29.7163, -177.8) direction (0, 0, 1) diameter 21.6 end through all
fillet "Fillet1" radius 3.175 2 edges at (-19.05, 15.8839, -63.5) (19.05, 15.8839, -63.5)
sketch "Sketch4" plane through (0, 0, 0) normal (0, 0, 1) x (1, 0, 0)
  line L0 (-84.0587, 46.9015) -> (30.6415, 46.9015)
  line L1 (30.6415, 46.9015) -> (30.6415, -6.8679)
  line L2 (30.6415, -6.8679) -> (-84.0587, -6.8679)
  line L3 (-84.0587, -6.8679) -> (-84.0587, 46.9015)
  line L4 (-84.0587, 46.9015) -> (30.6415, -6.8679) construction
  line L5 (30.6415, 46.9015) -> (-84.0587, -6.8679) construction
  point P0 (0, 0)
  point P1 (-26.7086, 20.0168)
extrude "Extrusion3" cut sketch "Sketch4" against normal blind 101.6
properties part number "Laser mount 3 inches"
